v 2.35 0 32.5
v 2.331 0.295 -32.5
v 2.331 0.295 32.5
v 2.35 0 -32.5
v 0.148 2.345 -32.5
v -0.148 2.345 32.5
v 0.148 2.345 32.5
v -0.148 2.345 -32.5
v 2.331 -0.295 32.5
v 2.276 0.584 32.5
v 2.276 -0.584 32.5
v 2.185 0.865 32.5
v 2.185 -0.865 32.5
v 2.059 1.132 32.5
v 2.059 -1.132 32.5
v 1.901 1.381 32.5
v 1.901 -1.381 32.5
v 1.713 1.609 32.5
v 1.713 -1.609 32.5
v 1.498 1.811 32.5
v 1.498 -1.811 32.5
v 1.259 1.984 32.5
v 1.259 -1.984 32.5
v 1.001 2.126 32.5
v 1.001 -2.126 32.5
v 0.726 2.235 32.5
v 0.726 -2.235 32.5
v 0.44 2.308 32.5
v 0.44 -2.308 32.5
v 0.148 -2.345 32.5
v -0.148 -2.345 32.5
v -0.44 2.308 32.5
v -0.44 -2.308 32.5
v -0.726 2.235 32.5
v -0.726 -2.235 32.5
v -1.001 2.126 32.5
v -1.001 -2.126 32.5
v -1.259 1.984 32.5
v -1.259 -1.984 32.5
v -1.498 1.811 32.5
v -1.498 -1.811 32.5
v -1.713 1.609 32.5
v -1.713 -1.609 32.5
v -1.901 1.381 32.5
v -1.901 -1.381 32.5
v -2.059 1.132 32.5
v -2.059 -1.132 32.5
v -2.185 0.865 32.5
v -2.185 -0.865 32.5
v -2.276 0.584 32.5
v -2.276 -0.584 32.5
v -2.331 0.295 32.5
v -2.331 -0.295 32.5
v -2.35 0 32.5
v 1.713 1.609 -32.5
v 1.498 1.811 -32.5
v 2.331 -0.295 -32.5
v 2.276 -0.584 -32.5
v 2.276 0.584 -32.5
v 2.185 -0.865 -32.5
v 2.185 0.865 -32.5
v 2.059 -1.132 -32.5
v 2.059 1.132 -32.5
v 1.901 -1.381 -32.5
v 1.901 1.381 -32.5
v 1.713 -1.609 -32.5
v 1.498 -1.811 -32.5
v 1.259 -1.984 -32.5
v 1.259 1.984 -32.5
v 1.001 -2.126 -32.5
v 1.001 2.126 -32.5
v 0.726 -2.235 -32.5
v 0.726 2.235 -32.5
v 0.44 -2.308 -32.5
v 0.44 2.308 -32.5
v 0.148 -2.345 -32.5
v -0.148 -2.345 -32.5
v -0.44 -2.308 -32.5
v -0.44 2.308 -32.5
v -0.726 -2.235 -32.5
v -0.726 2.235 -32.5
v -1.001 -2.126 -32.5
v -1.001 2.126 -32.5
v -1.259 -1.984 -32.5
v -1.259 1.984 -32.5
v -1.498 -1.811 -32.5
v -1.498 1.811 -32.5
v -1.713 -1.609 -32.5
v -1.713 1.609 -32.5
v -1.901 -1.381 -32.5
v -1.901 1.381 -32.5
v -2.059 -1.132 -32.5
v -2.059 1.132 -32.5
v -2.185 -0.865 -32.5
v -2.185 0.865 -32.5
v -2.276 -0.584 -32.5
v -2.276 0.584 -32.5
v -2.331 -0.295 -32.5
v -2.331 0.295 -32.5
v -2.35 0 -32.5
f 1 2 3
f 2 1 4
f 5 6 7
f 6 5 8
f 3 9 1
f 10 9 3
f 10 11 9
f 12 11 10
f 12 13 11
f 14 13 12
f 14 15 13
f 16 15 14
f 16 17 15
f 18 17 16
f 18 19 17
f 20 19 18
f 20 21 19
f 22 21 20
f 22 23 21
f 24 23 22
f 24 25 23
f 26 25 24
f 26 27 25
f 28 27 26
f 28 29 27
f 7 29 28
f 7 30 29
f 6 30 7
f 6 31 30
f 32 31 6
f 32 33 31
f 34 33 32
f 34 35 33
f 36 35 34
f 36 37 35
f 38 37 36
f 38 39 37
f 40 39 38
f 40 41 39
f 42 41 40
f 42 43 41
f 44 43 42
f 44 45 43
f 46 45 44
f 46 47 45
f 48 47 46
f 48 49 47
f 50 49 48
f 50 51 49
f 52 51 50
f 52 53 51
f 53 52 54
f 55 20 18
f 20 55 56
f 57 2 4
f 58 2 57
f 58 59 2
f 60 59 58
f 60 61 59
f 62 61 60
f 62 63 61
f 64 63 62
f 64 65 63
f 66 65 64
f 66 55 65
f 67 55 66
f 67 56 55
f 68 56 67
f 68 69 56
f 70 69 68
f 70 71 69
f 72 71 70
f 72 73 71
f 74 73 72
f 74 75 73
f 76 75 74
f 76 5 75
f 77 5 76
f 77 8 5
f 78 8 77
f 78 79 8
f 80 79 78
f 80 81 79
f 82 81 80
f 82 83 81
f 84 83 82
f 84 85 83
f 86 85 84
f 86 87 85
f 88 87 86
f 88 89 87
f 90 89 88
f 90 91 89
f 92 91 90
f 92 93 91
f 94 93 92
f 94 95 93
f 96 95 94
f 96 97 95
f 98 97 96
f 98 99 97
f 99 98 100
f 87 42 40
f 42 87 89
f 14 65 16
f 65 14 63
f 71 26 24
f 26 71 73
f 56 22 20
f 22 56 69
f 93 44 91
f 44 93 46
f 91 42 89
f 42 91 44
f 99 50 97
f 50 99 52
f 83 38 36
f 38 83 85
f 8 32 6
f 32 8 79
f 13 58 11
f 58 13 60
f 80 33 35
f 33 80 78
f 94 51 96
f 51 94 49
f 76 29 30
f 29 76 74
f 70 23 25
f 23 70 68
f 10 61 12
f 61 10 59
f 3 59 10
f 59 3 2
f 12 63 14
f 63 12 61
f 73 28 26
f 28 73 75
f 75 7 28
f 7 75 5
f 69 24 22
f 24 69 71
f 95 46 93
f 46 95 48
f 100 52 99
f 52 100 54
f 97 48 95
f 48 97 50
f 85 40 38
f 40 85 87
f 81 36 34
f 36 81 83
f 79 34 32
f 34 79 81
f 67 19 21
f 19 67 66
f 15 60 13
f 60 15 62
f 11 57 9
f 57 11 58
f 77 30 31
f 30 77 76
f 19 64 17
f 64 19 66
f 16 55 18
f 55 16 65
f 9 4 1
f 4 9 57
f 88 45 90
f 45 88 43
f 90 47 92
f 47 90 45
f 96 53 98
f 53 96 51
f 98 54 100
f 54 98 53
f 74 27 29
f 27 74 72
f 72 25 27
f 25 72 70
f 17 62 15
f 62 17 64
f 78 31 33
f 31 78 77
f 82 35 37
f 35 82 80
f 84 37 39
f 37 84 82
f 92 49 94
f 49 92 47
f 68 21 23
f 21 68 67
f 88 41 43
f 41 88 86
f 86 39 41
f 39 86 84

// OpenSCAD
$fn = 50;


difference() {
	union() {
		translate(v = [0, 0, -32.5000000000]) {
			cylinder(h = 65, r = 2.3500000000);
		}
	}
	union() {
		translate(v = [0, 0, -100.0000000000]) {
			cylinder(h = 200, r = 0);
		}
	}
}
